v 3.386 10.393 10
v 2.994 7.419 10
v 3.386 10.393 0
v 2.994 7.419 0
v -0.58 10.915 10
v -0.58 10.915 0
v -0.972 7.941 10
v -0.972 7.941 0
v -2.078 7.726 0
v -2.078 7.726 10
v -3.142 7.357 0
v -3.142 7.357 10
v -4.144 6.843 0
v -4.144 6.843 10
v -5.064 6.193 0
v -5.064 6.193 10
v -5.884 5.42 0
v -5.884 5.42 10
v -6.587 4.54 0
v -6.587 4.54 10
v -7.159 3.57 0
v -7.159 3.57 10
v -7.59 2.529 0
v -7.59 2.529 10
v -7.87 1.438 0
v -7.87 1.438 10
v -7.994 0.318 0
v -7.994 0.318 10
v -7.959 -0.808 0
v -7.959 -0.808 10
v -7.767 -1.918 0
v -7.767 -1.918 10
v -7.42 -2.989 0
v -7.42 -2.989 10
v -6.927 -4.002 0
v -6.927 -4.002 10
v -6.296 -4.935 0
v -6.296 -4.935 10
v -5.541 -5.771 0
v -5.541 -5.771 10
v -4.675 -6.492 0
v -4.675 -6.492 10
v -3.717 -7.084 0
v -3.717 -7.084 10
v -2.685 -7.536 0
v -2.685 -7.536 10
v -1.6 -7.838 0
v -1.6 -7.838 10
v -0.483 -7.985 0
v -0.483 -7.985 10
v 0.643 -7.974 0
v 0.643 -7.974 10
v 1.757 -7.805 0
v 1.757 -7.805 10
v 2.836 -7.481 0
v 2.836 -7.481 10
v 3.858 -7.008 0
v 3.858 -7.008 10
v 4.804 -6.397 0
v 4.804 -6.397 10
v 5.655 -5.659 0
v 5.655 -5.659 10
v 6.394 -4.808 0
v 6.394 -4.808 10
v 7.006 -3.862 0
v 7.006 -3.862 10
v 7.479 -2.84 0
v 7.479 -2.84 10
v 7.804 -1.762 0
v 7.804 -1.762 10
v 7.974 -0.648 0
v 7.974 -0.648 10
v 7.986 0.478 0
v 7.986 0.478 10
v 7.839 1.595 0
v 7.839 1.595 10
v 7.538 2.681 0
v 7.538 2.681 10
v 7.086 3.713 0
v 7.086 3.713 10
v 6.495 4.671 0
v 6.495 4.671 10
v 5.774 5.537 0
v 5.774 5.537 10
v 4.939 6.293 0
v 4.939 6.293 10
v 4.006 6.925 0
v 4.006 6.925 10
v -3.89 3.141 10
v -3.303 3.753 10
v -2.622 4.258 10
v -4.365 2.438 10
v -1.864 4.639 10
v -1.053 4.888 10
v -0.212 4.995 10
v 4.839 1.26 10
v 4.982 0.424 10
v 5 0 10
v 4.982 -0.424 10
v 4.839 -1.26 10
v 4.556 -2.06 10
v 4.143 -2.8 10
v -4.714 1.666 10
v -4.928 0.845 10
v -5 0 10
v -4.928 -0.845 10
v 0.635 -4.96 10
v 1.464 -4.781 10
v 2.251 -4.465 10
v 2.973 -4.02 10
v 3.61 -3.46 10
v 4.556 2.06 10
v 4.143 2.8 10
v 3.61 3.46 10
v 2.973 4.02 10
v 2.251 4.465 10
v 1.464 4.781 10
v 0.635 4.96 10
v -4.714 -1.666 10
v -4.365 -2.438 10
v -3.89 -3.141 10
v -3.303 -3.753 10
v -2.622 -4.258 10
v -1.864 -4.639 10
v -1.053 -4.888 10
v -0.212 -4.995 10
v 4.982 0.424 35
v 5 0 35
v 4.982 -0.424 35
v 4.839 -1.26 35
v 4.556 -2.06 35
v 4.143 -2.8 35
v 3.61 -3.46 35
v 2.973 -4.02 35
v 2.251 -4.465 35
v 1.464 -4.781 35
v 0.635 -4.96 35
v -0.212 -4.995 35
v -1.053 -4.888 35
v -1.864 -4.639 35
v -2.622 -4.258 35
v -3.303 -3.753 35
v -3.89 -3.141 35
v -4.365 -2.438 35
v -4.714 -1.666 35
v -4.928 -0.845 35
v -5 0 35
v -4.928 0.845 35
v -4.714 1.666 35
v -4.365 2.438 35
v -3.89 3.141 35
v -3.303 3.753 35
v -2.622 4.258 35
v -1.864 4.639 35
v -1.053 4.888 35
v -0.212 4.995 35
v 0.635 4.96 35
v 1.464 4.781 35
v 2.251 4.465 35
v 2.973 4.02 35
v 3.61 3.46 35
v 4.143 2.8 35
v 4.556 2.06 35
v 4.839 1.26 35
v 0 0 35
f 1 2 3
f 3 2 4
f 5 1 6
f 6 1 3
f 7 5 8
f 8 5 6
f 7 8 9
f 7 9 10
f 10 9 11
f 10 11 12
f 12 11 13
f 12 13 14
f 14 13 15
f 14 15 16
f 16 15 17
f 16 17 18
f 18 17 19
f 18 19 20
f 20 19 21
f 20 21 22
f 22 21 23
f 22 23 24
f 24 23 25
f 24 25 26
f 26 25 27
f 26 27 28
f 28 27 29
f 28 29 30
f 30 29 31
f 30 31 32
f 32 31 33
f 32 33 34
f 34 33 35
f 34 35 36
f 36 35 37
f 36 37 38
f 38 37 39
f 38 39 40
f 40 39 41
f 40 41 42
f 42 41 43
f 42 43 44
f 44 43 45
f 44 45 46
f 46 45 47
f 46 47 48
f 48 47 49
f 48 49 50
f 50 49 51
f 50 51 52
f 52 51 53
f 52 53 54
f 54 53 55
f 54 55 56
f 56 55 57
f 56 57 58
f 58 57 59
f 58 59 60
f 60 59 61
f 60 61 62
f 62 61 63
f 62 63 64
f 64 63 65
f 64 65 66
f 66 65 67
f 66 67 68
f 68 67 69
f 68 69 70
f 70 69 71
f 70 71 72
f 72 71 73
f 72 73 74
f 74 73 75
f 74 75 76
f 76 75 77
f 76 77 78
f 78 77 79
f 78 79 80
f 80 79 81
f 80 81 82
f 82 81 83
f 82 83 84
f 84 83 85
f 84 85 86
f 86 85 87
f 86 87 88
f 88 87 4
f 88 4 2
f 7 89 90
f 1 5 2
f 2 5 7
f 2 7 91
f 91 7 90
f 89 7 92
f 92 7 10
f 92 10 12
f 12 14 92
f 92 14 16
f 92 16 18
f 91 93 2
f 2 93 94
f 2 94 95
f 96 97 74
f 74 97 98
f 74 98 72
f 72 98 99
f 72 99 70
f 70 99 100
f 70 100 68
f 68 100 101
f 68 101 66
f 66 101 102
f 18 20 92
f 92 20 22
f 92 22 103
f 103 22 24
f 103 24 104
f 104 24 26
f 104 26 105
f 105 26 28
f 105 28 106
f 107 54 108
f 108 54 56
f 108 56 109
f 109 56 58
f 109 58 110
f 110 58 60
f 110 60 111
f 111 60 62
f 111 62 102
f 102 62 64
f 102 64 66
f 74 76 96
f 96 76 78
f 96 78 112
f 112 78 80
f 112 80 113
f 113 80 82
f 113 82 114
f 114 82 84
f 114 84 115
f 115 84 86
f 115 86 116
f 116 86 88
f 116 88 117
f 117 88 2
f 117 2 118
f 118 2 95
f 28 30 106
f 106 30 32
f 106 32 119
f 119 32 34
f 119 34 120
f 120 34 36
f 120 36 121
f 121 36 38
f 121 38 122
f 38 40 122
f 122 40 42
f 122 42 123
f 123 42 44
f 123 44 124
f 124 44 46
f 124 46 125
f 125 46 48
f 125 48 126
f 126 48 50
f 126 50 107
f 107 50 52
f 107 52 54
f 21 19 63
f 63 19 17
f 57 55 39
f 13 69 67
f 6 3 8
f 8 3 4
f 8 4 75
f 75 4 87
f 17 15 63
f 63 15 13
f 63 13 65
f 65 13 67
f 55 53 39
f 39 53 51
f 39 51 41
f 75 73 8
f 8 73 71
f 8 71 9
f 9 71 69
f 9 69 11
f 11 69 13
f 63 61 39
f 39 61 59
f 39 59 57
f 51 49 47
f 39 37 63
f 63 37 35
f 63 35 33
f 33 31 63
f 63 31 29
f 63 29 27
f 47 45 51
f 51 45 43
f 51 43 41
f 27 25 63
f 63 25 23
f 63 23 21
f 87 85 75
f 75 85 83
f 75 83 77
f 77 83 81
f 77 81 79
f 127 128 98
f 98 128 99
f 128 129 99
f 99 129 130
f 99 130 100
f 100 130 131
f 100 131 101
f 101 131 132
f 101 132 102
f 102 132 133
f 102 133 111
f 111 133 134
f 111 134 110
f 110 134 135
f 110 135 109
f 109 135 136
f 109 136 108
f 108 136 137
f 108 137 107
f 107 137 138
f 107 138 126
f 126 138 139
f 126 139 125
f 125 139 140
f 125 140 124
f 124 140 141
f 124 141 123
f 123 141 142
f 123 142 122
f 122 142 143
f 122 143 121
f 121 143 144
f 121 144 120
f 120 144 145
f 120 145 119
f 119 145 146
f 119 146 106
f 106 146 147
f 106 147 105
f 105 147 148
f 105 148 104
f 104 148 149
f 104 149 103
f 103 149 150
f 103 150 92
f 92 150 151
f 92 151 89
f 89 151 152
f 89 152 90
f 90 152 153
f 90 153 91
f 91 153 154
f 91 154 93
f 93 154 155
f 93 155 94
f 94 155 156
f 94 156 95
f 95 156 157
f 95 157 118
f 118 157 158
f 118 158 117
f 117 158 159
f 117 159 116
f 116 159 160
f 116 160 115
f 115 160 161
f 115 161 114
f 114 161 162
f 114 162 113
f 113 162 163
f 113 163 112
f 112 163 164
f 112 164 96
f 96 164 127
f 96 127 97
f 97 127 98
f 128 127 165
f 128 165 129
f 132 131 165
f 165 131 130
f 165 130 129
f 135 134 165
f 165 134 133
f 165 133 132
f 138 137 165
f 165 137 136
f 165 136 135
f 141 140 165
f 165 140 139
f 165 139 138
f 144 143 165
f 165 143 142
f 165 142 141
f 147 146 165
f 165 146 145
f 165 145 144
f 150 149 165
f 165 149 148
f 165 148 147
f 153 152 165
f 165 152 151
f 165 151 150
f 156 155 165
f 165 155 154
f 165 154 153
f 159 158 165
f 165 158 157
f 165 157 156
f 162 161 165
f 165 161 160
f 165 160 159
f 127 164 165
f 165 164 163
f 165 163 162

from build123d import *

# Parameters (mm, degrees)
BOSS_EXTRUDE1_DEPTH = 10
SKETCH2_R           = 5
BOSS_EXTRUDE2_DEPTH = 25


with BuildPart() as part:
    # Sketch1 → Boss-Extrude1 (new body)
    with BuildSketch(Plane.XY):
        with BuildLine():
            Line((-0.580259609, 10.915085842), (3.385519837, 10.392981073))
            Line((3.385519837, 10.392981073), (2.99394126, 7.418646489))
            ThreePointArc((2.99394126, 7.418646489), (-1.044209538, -7.931558891), (-0.971838185, 7.940751258))
            Line((-0.971838185, 7.940751258), (-0.580259609, 10.915085842))
        make_face()
    extrude(amount=BOSS_EXTRUDE1_DEPTH)

    # Sketch2 → Boss-Extrude2 (add)
    with BuildSketch(Plane.XY.offset(10)):
        Circle(SKETCH2_R)
    extrude(amount=BOSS_EXTRUDE2_DEPTH)


solid = part.part
